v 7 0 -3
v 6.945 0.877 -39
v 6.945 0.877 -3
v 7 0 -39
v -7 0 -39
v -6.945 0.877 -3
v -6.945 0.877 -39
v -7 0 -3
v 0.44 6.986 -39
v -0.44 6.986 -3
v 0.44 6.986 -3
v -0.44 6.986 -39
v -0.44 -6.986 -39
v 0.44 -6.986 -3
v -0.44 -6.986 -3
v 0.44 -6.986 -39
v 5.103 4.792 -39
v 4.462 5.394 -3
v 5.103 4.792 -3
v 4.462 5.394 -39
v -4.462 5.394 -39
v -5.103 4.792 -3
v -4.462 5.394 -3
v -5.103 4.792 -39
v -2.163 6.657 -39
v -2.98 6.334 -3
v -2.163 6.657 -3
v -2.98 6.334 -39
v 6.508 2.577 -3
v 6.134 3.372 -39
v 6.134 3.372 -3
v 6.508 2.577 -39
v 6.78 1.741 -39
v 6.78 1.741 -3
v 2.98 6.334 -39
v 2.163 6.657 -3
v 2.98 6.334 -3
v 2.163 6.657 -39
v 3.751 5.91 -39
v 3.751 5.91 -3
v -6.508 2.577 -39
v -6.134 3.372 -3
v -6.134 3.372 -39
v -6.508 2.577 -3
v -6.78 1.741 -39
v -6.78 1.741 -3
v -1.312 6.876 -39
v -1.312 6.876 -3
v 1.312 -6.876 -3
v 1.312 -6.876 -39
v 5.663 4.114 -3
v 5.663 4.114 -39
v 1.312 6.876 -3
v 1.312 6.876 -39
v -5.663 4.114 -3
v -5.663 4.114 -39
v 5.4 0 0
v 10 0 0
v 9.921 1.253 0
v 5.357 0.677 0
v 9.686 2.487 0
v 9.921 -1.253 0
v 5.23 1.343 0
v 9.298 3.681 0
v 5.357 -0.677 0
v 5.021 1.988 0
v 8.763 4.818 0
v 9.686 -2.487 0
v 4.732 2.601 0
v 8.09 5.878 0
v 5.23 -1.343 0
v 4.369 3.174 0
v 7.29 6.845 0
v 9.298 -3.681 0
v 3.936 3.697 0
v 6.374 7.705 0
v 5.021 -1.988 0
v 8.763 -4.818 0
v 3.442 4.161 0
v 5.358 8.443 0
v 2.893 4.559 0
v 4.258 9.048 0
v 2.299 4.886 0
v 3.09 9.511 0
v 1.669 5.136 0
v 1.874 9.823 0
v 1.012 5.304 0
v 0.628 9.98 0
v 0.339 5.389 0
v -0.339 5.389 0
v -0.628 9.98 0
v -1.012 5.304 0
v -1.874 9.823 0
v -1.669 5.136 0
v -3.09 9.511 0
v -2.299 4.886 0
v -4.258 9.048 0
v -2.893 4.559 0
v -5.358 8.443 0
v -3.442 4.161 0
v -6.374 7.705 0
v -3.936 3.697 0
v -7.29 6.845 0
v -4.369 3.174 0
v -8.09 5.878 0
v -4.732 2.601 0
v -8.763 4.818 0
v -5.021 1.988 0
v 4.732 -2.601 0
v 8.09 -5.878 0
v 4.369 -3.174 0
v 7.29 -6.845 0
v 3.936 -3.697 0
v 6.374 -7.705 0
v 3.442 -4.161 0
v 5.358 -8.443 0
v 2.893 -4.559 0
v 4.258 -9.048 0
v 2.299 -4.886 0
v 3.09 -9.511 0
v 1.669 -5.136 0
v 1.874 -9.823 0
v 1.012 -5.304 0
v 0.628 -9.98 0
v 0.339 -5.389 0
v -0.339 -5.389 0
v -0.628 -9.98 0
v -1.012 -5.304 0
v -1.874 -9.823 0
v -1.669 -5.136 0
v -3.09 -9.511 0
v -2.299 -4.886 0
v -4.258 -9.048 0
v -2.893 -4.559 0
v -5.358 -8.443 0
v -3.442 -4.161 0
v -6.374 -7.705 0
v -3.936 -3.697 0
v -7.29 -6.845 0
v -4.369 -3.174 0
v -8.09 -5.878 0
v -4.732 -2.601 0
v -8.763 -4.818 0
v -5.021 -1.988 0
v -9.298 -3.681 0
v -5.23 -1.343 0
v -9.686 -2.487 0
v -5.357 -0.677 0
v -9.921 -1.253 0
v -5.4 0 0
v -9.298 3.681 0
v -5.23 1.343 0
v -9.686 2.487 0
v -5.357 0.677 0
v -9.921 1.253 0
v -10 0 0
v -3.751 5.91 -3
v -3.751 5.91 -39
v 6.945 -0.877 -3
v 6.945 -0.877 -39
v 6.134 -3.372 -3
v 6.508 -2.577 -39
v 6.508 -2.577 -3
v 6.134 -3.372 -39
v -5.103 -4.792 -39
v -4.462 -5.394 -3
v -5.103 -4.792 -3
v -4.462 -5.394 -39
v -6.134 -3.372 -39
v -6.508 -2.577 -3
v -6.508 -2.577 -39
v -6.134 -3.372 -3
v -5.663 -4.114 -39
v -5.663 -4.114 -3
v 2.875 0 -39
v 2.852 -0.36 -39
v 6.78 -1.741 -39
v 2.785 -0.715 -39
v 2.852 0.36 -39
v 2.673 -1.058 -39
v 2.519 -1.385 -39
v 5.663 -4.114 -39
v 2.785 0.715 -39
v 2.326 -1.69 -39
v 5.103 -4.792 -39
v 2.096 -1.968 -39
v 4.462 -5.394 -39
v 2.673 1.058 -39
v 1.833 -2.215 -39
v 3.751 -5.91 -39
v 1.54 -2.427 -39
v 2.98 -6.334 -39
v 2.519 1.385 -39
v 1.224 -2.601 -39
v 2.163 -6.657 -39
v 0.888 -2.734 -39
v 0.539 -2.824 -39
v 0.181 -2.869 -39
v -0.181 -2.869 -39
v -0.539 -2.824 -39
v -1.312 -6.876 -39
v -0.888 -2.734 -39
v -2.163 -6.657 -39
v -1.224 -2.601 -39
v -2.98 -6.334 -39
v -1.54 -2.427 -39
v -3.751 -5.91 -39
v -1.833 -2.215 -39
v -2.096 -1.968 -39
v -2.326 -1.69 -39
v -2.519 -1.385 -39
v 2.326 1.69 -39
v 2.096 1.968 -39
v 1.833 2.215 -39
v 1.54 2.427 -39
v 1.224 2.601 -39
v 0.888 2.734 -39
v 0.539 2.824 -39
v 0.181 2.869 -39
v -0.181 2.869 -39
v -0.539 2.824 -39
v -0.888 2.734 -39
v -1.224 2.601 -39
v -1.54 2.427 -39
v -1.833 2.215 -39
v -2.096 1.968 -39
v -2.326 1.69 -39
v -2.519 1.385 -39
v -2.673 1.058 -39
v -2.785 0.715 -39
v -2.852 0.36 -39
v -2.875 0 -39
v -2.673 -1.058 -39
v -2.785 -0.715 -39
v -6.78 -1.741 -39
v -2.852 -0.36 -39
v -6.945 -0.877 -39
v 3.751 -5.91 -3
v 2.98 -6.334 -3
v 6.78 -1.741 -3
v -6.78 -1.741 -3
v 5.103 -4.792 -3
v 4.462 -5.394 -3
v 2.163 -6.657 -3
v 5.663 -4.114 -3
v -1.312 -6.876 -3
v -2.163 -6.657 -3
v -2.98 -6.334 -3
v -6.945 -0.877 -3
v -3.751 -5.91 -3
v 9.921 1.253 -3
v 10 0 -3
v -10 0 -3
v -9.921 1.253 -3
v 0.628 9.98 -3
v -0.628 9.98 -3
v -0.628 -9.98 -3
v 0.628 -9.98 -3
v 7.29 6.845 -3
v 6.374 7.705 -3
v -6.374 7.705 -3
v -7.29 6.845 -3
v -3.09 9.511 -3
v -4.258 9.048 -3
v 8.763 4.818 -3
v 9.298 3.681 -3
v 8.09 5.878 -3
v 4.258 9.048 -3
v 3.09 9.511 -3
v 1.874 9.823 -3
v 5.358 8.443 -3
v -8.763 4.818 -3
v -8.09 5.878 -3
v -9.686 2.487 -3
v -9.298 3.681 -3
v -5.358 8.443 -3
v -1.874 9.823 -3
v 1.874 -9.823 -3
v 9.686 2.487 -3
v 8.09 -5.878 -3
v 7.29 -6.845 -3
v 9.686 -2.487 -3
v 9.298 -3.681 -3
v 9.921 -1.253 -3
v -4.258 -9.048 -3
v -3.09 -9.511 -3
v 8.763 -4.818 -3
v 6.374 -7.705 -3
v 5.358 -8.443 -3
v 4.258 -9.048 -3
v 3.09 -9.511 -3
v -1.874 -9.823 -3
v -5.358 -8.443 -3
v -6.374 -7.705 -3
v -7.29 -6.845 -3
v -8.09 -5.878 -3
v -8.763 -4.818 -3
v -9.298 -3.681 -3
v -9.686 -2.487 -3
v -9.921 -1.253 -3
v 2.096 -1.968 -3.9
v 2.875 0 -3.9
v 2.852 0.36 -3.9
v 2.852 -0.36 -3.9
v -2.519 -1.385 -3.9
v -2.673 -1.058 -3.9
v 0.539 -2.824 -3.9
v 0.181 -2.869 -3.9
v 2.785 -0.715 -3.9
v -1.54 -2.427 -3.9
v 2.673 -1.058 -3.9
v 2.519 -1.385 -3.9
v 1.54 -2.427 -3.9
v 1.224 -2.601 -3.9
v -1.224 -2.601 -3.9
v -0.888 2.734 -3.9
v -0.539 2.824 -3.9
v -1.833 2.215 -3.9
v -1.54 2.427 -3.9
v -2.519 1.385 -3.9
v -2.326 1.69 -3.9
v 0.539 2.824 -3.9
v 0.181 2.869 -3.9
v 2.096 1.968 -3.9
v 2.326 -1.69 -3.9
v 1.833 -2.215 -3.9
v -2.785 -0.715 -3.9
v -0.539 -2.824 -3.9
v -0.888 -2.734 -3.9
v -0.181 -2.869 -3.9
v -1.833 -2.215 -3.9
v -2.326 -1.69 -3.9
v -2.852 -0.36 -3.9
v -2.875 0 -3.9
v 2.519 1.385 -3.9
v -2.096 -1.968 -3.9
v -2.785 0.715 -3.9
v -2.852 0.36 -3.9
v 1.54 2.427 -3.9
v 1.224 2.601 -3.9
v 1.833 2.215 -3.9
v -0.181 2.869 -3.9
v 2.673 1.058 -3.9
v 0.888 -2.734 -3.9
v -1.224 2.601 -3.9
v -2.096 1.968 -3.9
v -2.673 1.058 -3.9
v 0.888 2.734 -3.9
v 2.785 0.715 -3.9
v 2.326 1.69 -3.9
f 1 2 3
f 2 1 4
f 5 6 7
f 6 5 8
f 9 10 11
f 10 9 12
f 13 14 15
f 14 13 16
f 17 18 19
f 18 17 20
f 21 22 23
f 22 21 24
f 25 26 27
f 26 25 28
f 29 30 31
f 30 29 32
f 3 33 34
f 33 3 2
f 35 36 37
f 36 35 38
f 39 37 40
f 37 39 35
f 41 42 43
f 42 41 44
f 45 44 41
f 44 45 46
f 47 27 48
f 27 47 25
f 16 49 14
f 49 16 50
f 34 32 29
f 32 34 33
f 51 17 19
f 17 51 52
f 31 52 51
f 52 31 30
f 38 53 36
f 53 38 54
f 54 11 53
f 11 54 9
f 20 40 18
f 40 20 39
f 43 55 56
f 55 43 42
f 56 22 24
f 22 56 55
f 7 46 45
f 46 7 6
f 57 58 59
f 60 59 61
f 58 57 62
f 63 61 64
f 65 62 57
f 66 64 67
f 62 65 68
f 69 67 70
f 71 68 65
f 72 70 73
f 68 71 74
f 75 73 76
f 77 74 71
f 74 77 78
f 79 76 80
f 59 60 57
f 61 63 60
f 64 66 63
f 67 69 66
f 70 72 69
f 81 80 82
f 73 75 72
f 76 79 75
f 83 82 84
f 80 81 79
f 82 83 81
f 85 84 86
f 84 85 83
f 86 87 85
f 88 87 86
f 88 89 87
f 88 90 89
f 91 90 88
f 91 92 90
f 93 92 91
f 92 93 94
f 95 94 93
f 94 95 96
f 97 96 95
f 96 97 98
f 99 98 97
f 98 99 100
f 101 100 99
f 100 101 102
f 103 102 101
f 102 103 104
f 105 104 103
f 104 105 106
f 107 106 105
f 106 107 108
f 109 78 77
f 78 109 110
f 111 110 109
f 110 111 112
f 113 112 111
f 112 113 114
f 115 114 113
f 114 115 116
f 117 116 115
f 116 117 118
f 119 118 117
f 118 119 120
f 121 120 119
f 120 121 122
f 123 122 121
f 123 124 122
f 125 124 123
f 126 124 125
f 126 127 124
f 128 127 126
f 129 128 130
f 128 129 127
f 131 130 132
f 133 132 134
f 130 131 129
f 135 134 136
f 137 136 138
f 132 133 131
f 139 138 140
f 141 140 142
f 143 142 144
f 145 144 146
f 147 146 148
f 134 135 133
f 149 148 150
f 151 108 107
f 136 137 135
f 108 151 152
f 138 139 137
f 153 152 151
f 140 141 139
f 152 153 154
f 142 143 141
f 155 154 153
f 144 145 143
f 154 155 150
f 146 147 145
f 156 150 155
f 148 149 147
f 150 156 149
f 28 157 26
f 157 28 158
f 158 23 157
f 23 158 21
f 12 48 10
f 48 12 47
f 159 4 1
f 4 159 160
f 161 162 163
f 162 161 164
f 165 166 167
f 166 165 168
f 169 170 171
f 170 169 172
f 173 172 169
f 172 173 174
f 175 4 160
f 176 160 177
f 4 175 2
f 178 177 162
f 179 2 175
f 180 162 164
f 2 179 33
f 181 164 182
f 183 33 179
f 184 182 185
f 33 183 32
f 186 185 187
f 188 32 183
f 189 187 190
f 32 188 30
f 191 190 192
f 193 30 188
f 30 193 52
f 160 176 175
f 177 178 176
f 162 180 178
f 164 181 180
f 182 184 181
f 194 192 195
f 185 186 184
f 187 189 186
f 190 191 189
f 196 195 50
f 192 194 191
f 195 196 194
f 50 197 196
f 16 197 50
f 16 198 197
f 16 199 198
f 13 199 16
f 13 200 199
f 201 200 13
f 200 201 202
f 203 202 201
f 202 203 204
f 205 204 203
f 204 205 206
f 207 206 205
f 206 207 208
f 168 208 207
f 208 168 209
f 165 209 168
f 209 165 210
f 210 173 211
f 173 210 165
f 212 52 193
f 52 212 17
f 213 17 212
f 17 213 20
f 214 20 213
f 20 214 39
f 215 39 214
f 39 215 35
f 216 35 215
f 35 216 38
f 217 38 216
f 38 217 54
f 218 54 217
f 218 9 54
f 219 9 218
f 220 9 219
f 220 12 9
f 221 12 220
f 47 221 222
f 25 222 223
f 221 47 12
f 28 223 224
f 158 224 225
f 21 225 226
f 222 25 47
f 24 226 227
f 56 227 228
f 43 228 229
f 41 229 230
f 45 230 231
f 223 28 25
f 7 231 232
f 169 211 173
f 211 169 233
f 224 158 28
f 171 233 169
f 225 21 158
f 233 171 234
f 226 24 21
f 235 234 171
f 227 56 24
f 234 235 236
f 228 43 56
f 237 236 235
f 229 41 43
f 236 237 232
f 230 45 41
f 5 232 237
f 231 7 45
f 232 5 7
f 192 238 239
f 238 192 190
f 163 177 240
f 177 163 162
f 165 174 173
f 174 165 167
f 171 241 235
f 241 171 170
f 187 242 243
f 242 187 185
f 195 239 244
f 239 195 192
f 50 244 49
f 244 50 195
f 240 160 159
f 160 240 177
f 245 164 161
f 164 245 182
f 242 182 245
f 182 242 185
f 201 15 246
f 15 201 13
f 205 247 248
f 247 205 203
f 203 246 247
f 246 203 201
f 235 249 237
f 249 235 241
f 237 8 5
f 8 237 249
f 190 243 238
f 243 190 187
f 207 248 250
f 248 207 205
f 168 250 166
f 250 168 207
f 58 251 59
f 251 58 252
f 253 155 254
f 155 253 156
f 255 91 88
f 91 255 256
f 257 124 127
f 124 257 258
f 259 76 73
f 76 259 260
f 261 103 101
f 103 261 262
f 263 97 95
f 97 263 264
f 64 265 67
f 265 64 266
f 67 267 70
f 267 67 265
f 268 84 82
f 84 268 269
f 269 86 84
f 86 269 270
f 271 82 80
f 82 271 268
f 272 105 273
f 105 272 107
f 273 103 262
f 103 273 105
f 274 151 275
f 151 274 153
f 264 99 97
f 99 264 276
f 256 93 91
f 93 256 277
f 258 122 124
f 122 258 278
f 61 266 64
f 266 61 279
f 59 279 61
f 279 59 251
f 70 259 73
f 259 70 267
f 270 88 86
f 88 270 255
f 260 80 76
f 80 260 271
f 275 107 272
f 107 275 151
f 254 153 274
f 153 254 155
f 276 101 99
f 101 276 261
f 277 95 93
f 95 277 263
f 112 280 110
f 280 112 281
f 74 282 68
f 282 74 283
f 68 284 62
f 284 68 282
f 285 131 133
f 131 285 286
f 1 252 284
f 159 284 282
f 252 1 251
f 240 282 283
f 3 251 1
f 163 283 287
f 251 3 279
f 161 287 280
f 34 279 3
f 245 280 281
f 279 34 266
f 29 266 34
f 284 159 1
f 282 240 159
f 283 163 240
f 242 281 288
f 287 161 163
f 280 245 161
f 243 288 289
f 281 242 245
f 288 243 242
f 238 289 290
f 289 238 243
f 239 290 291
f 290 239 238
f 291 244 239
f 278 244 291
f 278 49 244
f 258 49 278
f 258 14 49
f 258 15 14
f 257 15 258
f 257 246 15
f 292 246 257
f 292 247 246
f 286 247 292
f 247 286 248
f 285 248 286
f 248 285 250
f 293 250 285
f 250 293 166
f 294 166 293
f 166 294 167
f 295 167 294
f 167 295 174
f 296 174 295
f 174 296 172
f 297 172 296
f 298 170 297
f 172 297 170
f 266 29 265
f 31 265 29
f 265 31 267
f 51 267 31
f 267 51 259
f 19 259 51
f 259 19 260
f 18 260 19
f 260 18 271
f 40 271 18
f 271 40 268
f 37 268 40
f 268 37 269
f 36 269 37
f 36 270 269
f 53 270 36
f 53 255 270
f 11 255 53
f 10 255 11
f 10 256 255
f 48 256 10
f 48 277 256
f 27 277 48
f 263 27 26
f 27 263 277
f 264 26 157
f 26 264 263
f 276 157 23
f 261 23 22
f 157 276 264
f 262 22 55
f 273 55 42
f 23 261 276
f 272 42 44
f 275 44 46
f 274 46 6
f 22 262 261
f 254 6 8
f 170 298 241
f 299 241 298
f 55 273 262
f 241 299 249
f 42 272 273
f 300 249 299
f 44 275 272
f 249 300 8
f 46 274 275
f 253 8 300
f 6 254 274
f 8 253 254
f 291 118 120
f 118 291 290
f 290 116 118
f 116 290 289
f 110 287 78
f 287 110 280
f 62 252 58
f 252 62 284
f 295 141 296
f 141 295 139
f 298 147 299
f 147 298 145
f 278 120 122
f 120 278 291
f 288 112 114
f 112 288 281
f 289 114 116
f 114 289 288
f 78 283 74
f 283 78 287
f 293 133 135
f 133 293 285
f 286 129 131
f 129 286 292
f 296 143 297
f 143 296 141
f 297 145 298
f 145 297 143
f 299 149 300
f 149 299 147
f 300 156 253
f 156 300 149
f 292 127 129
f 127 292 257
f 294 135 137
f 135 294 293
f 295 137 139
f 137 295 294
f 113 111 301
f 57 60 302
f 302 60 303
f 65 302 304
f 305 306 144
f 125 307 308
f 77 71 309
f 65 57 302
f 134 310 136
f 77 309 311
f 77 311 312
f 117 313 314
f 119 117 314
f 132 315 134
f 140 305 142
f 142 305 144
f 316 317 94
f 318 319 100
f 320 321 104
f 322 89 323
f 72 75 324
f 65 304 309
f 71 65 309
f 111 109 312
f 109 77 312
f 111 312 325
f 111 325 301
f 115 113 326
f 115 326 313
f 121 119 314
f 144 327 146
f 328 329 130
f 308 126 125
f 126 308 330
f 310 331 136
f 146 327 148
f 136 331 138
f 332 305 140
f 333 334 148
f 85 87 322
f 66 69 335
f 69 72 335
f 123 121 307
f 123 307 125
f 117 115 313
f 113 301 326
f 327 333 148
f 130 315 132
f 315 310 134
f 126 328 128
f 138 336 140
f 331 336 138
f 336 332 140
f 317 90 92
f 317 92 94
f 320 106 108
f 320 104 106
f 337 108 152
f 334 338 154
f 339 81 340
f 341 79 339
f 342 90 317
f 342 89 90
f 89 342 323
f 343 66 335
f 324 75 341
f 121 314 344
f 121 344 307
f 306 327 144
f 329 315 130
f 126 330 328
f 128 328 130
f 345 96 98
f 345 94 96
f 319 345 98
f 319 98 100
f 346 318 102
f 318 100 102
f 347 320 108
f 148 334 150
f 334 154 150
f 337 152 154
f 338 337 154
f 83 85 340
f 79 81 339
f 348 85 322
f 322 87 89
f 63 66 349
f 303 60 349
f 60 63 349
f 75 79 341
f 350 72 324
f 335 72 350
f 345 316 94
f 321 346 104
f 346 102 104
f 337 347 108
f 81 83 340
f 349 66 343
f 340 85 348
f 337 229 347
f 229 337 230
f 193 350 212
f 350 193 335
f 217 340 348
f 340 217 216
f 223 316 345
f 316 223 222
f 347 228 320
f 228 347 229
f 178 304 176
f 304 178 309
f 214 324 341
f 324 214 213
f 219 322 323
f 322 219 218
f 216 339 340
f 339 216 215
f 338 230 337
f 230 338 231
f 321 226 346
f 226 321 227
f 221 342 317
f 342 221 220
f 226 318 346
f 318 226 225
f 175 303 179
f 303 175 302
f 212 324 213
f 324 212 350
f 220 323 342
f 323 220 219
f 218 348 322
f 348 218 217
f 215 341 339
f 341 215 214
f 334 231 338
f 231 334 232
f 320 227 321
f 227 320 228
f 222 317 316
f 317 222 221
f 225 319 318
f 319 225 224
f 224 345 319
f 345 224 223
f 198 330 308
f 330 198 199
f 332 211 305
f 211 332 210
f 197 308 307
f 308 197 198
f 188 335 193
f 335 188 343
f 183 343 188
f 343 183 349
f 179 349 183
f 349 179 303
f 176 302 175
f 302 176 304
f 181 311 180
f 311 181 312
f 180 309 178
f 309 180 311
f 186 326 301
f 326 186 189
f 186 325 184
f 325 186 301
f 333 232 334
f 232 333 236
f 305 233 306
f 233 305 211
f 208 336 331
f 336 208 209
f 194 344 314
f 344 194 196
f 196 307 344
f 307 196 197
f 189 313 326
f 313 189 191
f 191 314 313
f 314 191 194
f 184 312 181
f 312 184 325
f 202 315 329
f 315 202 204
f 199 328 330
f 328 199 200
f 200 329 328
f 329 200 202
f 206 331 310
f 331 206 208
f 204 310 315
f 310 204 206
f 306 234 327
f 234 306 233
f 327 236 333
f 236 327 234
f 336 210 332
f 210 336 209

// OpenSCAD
$fn = 50;


difference() {
	union() {
		translate(v = [0, 0, -39.0000000000]) {
			cylinder(h = 39, r = 7.0000000000);
		}
		translate(v = [0, 0, -3.0000000000]) {
			cylinder(h = 3, r = 10.0000000000);
		}
	}
	union() {
		translate(v = [0, 0, 0]) {
			rotate(a = [0, 0, 0]) {
				difference() {
					union() {
						#translate(v = [0, 0, -39.0000000000]) {
							cylinder(h = 39, r = 2.6000000000);
						}
						#translate(v = [0, 0, -3.9000000000]) {
							cylinder(h = 3.9000000000, r1 = 2.8750000000, r2 = 5.4000000000);
						}
						#translate(v = [0, 0, -39.0000000000]) {
							cylinder(h = 39, r = 2.8750000000);
						}
						#translate(v = [0, 0, -39.0000000000]) {
							cylinder(h = 39, r = 2.6000000000);
						}
					}
					union();
				}
			}
		}
	}
}
